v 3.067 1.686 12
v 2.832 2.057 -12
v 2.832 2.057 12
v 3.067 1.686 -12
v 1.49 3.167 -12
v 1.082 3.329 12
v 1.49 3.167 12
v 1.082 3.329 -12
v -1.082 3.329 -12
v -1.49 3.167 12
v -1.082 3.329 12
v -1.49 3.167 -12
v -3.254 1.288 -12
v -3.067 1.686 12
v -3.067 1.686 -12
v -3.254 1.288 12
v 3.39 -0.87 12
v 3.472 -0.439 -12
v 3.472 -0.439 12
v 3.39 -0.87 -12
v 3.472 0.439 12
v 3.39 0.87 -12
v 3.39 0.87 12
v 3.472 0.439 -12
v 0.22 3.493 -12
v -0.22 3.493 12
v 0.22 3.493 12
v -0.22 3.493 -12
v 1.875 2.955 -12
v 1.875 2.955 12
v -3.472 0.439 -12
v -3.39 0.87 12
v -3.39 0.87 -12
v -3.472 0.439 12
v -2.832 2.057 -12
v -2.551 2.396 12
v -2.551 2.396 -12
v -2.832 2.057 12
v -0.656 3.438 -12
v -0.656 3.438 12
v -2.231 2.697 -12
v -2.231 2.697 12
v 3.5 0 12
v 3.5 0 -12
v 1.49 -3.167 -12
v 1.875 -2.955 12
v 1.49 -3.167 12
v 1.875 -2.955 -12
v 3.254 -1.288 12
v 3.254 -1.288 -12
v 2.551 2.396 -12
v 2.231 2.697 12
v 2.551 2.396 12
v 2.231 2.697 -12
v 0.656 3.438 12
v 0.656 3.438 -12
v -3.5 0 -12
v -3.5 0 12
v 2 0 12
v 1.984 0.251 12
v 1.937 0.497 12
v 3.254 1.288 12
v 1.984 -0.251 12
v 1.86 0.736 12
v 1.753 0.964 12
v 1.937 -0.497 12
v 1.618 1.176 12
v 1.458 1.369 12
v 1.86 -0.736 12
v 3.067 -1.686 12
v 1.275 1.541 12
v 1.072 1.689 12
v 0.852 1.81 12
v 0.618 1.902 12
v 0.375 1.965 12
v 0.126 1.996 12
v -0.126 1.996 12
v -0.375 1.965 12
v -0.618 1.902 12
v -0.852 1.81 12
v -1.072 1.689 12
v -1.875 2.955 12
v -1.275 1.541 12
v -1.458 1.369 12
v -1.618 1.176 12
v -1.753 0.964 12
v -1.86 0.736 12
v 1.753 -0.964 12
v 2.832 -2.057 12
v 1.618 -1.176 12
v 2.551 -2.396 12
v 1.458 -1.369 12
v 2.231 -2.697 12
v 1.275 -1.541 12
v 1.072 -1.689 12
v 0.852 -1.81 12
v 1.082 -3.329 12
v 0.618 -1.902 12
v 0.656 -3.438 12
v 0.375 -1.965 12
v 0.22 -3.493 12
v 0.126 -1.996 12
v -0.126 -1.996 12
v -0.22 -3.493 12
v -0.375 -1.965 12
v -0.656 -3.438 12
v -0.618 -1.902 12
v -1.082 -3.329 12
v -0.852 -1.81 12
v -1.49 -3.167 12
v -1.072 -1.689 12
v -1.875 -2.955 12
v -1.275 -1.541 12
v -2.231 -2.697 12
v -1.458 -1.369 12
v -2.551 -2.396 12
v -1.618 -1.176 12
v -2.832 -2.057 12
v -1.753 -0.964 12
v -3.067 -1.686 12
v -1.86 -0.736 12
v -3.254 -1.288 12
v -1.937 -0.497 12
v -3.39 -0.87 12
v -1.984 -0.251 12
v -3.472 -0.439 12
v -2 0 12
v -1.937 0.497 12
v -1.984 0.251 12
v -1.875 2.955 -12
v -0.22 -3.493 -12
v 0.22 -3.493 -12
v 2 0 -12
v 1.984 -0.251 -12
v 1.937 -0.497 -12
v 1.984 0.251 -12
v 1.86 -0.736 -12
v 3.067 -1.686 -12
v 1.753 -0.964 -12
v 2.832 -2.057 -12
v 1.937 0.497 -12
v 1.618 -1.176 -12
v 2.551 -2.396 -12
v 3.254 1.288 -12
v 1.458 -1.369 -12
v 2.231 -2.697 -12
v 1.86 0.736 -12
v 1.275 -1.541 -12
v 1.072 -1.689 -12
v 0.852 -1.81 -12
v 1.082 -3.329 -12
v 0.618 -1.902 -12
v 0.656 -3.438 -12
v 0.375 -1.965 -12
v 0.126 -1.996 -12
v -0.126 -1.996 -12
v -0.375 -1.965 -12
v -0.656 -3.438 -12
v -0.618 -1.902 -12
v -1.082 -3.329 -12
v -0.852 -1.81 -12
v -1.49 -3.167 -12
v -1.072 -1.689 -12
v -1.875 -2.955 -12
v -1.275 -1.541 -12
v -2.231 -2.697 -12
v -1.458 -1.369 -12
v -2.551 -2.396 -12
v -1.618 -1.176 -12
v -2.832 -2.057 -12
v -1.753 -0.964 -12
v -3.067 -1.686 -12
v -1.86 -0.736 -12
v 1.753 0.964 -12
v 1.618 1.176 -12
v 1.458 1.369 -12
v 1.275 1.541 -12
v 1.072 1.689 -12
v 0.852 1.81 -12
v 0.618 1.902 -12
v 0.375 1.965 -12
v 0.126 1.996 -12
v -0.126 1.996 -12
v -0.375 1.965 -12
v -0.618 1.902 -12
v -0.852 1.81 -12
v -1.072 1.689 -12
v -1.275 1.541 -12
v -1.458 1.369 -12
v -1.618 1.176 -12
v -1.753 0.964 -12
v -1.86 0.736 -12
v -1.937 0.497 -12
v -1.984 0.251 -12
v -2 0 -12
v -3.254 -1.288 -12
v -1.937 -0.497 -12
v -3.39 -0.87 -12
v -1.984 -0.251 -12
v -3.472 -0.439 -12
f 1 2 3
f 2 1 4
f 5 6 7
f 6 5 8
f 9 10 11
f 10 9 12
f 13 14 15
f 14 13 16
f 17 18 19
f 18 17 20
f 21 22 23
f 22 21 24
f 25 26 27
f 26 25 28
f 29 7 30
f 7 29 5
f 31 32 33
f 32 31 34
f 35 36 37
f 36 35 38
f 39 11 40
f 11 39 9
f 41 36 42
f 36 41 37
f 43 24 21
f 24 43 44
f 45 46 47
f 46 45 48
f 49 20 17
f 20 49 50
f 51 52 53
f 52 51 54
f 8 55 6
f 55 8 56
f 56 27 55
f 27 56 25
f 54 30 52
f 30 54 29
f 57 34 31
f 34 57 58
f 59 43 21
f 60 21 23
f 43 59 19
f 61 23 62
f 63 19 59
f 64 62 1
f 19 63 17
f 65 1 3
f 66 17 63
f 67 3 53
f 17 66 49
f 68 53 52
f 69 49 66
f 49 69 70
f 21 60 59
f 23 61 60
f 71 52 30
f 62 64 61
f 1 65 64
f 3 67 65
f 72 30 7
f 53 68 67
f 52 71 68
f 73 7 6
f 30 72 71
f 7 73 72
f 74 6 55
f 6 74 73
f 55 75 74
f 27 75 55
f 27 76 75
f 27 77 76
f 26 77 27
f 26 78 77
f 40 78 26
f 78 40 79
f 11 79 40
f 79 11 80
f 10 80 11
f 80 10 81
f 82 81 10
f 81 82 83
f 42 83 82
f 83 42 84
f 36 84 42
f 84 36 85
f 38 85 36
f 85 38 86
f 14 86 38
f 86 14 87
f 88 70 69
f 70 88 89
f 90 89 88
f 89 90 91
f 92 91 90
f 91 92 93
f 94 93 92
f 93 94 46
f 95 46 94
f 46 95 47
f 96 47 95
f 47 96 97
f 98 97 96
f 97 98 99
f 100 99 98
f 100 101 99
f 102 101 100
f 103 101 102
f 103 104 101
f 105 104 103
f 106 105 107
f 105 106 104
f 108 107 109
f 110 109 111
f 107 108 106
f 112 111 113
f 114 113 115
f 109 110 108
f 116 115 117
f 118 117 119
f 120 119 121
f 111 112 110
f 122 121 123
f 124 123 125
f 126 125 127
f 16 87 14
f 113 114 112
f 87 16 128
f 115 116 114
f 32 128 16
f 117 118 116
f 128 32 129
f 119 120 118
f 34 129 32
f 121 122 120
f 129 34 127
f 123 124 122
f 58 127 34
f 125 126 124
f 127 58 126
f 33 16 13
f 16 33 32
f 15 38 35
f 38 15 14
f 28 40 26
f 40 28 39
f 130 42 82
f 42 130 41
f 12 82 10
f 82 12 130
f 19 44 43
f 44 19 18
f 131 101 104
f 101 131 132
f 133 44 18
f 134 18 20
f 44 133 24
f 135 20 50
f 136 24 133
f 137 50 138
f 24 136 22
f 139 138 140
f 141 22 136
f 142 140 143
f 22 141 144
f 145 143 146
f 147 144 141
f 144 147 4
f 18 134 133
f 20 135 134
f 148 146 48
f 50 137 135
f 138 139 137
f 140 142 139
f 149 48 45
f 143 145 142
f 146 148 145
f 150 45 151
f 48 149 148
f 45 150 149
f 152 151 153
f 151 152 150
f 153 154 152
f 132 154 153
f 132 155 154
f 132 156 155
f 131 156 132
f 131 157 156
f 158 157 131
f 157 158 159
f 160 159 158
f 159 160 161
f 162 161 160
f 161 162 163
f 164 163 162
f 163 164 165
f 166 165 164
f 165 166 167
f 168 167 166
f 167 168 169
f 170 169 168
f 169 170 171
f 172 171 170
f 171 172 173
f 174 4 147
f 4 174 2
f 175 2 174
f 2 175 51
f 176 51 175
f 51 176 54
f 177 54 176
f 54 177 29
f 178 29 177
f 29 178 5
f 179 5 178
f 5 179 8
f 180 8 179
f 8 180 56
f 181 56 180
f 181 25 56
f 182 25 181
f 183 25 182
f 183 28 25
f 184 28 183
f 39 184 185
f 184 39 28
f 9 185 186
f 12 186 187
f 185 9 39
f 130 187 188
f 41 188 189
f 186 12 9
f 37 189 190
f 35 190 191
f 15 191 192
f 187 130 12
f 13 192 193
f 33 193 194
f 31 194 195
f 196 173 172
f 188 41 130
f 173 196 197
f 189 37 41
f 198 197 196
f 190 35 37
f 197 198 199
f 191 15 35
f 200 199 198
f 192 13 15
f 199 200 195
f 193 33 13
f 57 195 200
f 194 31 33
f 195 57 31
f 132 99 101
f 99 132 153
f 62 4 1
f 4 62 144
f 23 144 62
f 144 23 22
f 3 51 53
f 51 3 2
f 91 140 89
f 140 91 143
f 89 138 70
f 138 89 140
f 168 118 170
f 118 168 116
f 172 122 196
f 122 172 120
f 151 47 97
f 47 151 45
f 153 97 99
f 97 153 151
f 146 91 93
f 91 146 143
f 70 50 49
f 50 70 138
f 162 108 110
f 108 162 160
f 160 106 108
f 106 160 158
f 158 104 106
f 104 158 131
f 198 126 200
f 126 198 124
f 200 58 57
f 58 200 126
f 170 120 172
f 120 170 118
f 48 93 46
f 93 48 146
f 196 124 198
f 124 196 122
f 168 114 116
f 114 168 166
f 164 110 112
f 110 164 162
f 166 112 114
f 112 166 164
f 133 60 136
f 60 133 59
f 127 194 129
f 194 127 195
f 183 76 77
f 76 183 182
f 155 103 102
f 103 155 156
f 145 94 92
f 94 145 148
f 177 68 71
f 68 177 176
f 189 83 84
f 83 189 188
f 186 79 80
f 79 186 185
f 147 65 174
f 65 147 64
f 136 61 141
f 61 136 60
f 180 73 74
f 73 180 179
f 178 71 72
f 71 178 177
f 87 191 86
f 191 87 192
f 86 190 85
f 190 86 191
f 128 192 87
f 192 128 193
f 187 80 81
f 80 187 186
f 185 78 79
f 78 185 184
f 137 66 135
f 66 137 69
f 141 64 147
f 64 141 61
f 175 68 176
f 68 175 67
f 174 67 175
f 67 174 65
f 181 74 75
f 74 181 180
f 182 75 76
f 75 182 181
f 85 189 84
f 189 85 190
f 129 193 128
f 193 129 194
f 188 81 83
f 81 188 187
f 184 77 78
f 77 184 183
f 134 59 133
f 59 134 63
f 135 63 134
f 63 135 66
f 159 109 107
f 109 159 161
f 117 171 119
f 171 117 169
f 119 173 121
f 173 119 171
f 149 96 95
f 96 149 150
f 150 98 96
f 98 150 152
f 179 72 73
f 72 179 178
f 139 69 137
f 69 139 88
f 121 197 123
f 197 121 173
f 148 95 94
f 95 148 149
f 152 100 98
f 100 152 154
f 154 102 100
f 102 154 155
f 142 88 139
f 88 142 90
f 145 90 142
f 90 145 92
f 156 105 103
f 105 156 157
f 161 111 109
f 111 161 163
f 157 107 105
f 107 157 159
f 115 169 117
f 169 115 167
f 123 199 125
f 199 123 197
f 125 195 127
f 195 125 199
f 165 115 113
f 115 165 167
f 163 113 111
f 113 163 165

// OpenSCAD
$fn = 50;


difference() {
	union() {
		translate(v = [0, 0, -12.0000000000]) {
			cylinder(h = 24, r = 3.5000000000);
		}
	}
	union() {
		translate(v = [0, 0, -100.0000000000]) {
			cylinder(h = 200, r = 2);
		}
	}
}
